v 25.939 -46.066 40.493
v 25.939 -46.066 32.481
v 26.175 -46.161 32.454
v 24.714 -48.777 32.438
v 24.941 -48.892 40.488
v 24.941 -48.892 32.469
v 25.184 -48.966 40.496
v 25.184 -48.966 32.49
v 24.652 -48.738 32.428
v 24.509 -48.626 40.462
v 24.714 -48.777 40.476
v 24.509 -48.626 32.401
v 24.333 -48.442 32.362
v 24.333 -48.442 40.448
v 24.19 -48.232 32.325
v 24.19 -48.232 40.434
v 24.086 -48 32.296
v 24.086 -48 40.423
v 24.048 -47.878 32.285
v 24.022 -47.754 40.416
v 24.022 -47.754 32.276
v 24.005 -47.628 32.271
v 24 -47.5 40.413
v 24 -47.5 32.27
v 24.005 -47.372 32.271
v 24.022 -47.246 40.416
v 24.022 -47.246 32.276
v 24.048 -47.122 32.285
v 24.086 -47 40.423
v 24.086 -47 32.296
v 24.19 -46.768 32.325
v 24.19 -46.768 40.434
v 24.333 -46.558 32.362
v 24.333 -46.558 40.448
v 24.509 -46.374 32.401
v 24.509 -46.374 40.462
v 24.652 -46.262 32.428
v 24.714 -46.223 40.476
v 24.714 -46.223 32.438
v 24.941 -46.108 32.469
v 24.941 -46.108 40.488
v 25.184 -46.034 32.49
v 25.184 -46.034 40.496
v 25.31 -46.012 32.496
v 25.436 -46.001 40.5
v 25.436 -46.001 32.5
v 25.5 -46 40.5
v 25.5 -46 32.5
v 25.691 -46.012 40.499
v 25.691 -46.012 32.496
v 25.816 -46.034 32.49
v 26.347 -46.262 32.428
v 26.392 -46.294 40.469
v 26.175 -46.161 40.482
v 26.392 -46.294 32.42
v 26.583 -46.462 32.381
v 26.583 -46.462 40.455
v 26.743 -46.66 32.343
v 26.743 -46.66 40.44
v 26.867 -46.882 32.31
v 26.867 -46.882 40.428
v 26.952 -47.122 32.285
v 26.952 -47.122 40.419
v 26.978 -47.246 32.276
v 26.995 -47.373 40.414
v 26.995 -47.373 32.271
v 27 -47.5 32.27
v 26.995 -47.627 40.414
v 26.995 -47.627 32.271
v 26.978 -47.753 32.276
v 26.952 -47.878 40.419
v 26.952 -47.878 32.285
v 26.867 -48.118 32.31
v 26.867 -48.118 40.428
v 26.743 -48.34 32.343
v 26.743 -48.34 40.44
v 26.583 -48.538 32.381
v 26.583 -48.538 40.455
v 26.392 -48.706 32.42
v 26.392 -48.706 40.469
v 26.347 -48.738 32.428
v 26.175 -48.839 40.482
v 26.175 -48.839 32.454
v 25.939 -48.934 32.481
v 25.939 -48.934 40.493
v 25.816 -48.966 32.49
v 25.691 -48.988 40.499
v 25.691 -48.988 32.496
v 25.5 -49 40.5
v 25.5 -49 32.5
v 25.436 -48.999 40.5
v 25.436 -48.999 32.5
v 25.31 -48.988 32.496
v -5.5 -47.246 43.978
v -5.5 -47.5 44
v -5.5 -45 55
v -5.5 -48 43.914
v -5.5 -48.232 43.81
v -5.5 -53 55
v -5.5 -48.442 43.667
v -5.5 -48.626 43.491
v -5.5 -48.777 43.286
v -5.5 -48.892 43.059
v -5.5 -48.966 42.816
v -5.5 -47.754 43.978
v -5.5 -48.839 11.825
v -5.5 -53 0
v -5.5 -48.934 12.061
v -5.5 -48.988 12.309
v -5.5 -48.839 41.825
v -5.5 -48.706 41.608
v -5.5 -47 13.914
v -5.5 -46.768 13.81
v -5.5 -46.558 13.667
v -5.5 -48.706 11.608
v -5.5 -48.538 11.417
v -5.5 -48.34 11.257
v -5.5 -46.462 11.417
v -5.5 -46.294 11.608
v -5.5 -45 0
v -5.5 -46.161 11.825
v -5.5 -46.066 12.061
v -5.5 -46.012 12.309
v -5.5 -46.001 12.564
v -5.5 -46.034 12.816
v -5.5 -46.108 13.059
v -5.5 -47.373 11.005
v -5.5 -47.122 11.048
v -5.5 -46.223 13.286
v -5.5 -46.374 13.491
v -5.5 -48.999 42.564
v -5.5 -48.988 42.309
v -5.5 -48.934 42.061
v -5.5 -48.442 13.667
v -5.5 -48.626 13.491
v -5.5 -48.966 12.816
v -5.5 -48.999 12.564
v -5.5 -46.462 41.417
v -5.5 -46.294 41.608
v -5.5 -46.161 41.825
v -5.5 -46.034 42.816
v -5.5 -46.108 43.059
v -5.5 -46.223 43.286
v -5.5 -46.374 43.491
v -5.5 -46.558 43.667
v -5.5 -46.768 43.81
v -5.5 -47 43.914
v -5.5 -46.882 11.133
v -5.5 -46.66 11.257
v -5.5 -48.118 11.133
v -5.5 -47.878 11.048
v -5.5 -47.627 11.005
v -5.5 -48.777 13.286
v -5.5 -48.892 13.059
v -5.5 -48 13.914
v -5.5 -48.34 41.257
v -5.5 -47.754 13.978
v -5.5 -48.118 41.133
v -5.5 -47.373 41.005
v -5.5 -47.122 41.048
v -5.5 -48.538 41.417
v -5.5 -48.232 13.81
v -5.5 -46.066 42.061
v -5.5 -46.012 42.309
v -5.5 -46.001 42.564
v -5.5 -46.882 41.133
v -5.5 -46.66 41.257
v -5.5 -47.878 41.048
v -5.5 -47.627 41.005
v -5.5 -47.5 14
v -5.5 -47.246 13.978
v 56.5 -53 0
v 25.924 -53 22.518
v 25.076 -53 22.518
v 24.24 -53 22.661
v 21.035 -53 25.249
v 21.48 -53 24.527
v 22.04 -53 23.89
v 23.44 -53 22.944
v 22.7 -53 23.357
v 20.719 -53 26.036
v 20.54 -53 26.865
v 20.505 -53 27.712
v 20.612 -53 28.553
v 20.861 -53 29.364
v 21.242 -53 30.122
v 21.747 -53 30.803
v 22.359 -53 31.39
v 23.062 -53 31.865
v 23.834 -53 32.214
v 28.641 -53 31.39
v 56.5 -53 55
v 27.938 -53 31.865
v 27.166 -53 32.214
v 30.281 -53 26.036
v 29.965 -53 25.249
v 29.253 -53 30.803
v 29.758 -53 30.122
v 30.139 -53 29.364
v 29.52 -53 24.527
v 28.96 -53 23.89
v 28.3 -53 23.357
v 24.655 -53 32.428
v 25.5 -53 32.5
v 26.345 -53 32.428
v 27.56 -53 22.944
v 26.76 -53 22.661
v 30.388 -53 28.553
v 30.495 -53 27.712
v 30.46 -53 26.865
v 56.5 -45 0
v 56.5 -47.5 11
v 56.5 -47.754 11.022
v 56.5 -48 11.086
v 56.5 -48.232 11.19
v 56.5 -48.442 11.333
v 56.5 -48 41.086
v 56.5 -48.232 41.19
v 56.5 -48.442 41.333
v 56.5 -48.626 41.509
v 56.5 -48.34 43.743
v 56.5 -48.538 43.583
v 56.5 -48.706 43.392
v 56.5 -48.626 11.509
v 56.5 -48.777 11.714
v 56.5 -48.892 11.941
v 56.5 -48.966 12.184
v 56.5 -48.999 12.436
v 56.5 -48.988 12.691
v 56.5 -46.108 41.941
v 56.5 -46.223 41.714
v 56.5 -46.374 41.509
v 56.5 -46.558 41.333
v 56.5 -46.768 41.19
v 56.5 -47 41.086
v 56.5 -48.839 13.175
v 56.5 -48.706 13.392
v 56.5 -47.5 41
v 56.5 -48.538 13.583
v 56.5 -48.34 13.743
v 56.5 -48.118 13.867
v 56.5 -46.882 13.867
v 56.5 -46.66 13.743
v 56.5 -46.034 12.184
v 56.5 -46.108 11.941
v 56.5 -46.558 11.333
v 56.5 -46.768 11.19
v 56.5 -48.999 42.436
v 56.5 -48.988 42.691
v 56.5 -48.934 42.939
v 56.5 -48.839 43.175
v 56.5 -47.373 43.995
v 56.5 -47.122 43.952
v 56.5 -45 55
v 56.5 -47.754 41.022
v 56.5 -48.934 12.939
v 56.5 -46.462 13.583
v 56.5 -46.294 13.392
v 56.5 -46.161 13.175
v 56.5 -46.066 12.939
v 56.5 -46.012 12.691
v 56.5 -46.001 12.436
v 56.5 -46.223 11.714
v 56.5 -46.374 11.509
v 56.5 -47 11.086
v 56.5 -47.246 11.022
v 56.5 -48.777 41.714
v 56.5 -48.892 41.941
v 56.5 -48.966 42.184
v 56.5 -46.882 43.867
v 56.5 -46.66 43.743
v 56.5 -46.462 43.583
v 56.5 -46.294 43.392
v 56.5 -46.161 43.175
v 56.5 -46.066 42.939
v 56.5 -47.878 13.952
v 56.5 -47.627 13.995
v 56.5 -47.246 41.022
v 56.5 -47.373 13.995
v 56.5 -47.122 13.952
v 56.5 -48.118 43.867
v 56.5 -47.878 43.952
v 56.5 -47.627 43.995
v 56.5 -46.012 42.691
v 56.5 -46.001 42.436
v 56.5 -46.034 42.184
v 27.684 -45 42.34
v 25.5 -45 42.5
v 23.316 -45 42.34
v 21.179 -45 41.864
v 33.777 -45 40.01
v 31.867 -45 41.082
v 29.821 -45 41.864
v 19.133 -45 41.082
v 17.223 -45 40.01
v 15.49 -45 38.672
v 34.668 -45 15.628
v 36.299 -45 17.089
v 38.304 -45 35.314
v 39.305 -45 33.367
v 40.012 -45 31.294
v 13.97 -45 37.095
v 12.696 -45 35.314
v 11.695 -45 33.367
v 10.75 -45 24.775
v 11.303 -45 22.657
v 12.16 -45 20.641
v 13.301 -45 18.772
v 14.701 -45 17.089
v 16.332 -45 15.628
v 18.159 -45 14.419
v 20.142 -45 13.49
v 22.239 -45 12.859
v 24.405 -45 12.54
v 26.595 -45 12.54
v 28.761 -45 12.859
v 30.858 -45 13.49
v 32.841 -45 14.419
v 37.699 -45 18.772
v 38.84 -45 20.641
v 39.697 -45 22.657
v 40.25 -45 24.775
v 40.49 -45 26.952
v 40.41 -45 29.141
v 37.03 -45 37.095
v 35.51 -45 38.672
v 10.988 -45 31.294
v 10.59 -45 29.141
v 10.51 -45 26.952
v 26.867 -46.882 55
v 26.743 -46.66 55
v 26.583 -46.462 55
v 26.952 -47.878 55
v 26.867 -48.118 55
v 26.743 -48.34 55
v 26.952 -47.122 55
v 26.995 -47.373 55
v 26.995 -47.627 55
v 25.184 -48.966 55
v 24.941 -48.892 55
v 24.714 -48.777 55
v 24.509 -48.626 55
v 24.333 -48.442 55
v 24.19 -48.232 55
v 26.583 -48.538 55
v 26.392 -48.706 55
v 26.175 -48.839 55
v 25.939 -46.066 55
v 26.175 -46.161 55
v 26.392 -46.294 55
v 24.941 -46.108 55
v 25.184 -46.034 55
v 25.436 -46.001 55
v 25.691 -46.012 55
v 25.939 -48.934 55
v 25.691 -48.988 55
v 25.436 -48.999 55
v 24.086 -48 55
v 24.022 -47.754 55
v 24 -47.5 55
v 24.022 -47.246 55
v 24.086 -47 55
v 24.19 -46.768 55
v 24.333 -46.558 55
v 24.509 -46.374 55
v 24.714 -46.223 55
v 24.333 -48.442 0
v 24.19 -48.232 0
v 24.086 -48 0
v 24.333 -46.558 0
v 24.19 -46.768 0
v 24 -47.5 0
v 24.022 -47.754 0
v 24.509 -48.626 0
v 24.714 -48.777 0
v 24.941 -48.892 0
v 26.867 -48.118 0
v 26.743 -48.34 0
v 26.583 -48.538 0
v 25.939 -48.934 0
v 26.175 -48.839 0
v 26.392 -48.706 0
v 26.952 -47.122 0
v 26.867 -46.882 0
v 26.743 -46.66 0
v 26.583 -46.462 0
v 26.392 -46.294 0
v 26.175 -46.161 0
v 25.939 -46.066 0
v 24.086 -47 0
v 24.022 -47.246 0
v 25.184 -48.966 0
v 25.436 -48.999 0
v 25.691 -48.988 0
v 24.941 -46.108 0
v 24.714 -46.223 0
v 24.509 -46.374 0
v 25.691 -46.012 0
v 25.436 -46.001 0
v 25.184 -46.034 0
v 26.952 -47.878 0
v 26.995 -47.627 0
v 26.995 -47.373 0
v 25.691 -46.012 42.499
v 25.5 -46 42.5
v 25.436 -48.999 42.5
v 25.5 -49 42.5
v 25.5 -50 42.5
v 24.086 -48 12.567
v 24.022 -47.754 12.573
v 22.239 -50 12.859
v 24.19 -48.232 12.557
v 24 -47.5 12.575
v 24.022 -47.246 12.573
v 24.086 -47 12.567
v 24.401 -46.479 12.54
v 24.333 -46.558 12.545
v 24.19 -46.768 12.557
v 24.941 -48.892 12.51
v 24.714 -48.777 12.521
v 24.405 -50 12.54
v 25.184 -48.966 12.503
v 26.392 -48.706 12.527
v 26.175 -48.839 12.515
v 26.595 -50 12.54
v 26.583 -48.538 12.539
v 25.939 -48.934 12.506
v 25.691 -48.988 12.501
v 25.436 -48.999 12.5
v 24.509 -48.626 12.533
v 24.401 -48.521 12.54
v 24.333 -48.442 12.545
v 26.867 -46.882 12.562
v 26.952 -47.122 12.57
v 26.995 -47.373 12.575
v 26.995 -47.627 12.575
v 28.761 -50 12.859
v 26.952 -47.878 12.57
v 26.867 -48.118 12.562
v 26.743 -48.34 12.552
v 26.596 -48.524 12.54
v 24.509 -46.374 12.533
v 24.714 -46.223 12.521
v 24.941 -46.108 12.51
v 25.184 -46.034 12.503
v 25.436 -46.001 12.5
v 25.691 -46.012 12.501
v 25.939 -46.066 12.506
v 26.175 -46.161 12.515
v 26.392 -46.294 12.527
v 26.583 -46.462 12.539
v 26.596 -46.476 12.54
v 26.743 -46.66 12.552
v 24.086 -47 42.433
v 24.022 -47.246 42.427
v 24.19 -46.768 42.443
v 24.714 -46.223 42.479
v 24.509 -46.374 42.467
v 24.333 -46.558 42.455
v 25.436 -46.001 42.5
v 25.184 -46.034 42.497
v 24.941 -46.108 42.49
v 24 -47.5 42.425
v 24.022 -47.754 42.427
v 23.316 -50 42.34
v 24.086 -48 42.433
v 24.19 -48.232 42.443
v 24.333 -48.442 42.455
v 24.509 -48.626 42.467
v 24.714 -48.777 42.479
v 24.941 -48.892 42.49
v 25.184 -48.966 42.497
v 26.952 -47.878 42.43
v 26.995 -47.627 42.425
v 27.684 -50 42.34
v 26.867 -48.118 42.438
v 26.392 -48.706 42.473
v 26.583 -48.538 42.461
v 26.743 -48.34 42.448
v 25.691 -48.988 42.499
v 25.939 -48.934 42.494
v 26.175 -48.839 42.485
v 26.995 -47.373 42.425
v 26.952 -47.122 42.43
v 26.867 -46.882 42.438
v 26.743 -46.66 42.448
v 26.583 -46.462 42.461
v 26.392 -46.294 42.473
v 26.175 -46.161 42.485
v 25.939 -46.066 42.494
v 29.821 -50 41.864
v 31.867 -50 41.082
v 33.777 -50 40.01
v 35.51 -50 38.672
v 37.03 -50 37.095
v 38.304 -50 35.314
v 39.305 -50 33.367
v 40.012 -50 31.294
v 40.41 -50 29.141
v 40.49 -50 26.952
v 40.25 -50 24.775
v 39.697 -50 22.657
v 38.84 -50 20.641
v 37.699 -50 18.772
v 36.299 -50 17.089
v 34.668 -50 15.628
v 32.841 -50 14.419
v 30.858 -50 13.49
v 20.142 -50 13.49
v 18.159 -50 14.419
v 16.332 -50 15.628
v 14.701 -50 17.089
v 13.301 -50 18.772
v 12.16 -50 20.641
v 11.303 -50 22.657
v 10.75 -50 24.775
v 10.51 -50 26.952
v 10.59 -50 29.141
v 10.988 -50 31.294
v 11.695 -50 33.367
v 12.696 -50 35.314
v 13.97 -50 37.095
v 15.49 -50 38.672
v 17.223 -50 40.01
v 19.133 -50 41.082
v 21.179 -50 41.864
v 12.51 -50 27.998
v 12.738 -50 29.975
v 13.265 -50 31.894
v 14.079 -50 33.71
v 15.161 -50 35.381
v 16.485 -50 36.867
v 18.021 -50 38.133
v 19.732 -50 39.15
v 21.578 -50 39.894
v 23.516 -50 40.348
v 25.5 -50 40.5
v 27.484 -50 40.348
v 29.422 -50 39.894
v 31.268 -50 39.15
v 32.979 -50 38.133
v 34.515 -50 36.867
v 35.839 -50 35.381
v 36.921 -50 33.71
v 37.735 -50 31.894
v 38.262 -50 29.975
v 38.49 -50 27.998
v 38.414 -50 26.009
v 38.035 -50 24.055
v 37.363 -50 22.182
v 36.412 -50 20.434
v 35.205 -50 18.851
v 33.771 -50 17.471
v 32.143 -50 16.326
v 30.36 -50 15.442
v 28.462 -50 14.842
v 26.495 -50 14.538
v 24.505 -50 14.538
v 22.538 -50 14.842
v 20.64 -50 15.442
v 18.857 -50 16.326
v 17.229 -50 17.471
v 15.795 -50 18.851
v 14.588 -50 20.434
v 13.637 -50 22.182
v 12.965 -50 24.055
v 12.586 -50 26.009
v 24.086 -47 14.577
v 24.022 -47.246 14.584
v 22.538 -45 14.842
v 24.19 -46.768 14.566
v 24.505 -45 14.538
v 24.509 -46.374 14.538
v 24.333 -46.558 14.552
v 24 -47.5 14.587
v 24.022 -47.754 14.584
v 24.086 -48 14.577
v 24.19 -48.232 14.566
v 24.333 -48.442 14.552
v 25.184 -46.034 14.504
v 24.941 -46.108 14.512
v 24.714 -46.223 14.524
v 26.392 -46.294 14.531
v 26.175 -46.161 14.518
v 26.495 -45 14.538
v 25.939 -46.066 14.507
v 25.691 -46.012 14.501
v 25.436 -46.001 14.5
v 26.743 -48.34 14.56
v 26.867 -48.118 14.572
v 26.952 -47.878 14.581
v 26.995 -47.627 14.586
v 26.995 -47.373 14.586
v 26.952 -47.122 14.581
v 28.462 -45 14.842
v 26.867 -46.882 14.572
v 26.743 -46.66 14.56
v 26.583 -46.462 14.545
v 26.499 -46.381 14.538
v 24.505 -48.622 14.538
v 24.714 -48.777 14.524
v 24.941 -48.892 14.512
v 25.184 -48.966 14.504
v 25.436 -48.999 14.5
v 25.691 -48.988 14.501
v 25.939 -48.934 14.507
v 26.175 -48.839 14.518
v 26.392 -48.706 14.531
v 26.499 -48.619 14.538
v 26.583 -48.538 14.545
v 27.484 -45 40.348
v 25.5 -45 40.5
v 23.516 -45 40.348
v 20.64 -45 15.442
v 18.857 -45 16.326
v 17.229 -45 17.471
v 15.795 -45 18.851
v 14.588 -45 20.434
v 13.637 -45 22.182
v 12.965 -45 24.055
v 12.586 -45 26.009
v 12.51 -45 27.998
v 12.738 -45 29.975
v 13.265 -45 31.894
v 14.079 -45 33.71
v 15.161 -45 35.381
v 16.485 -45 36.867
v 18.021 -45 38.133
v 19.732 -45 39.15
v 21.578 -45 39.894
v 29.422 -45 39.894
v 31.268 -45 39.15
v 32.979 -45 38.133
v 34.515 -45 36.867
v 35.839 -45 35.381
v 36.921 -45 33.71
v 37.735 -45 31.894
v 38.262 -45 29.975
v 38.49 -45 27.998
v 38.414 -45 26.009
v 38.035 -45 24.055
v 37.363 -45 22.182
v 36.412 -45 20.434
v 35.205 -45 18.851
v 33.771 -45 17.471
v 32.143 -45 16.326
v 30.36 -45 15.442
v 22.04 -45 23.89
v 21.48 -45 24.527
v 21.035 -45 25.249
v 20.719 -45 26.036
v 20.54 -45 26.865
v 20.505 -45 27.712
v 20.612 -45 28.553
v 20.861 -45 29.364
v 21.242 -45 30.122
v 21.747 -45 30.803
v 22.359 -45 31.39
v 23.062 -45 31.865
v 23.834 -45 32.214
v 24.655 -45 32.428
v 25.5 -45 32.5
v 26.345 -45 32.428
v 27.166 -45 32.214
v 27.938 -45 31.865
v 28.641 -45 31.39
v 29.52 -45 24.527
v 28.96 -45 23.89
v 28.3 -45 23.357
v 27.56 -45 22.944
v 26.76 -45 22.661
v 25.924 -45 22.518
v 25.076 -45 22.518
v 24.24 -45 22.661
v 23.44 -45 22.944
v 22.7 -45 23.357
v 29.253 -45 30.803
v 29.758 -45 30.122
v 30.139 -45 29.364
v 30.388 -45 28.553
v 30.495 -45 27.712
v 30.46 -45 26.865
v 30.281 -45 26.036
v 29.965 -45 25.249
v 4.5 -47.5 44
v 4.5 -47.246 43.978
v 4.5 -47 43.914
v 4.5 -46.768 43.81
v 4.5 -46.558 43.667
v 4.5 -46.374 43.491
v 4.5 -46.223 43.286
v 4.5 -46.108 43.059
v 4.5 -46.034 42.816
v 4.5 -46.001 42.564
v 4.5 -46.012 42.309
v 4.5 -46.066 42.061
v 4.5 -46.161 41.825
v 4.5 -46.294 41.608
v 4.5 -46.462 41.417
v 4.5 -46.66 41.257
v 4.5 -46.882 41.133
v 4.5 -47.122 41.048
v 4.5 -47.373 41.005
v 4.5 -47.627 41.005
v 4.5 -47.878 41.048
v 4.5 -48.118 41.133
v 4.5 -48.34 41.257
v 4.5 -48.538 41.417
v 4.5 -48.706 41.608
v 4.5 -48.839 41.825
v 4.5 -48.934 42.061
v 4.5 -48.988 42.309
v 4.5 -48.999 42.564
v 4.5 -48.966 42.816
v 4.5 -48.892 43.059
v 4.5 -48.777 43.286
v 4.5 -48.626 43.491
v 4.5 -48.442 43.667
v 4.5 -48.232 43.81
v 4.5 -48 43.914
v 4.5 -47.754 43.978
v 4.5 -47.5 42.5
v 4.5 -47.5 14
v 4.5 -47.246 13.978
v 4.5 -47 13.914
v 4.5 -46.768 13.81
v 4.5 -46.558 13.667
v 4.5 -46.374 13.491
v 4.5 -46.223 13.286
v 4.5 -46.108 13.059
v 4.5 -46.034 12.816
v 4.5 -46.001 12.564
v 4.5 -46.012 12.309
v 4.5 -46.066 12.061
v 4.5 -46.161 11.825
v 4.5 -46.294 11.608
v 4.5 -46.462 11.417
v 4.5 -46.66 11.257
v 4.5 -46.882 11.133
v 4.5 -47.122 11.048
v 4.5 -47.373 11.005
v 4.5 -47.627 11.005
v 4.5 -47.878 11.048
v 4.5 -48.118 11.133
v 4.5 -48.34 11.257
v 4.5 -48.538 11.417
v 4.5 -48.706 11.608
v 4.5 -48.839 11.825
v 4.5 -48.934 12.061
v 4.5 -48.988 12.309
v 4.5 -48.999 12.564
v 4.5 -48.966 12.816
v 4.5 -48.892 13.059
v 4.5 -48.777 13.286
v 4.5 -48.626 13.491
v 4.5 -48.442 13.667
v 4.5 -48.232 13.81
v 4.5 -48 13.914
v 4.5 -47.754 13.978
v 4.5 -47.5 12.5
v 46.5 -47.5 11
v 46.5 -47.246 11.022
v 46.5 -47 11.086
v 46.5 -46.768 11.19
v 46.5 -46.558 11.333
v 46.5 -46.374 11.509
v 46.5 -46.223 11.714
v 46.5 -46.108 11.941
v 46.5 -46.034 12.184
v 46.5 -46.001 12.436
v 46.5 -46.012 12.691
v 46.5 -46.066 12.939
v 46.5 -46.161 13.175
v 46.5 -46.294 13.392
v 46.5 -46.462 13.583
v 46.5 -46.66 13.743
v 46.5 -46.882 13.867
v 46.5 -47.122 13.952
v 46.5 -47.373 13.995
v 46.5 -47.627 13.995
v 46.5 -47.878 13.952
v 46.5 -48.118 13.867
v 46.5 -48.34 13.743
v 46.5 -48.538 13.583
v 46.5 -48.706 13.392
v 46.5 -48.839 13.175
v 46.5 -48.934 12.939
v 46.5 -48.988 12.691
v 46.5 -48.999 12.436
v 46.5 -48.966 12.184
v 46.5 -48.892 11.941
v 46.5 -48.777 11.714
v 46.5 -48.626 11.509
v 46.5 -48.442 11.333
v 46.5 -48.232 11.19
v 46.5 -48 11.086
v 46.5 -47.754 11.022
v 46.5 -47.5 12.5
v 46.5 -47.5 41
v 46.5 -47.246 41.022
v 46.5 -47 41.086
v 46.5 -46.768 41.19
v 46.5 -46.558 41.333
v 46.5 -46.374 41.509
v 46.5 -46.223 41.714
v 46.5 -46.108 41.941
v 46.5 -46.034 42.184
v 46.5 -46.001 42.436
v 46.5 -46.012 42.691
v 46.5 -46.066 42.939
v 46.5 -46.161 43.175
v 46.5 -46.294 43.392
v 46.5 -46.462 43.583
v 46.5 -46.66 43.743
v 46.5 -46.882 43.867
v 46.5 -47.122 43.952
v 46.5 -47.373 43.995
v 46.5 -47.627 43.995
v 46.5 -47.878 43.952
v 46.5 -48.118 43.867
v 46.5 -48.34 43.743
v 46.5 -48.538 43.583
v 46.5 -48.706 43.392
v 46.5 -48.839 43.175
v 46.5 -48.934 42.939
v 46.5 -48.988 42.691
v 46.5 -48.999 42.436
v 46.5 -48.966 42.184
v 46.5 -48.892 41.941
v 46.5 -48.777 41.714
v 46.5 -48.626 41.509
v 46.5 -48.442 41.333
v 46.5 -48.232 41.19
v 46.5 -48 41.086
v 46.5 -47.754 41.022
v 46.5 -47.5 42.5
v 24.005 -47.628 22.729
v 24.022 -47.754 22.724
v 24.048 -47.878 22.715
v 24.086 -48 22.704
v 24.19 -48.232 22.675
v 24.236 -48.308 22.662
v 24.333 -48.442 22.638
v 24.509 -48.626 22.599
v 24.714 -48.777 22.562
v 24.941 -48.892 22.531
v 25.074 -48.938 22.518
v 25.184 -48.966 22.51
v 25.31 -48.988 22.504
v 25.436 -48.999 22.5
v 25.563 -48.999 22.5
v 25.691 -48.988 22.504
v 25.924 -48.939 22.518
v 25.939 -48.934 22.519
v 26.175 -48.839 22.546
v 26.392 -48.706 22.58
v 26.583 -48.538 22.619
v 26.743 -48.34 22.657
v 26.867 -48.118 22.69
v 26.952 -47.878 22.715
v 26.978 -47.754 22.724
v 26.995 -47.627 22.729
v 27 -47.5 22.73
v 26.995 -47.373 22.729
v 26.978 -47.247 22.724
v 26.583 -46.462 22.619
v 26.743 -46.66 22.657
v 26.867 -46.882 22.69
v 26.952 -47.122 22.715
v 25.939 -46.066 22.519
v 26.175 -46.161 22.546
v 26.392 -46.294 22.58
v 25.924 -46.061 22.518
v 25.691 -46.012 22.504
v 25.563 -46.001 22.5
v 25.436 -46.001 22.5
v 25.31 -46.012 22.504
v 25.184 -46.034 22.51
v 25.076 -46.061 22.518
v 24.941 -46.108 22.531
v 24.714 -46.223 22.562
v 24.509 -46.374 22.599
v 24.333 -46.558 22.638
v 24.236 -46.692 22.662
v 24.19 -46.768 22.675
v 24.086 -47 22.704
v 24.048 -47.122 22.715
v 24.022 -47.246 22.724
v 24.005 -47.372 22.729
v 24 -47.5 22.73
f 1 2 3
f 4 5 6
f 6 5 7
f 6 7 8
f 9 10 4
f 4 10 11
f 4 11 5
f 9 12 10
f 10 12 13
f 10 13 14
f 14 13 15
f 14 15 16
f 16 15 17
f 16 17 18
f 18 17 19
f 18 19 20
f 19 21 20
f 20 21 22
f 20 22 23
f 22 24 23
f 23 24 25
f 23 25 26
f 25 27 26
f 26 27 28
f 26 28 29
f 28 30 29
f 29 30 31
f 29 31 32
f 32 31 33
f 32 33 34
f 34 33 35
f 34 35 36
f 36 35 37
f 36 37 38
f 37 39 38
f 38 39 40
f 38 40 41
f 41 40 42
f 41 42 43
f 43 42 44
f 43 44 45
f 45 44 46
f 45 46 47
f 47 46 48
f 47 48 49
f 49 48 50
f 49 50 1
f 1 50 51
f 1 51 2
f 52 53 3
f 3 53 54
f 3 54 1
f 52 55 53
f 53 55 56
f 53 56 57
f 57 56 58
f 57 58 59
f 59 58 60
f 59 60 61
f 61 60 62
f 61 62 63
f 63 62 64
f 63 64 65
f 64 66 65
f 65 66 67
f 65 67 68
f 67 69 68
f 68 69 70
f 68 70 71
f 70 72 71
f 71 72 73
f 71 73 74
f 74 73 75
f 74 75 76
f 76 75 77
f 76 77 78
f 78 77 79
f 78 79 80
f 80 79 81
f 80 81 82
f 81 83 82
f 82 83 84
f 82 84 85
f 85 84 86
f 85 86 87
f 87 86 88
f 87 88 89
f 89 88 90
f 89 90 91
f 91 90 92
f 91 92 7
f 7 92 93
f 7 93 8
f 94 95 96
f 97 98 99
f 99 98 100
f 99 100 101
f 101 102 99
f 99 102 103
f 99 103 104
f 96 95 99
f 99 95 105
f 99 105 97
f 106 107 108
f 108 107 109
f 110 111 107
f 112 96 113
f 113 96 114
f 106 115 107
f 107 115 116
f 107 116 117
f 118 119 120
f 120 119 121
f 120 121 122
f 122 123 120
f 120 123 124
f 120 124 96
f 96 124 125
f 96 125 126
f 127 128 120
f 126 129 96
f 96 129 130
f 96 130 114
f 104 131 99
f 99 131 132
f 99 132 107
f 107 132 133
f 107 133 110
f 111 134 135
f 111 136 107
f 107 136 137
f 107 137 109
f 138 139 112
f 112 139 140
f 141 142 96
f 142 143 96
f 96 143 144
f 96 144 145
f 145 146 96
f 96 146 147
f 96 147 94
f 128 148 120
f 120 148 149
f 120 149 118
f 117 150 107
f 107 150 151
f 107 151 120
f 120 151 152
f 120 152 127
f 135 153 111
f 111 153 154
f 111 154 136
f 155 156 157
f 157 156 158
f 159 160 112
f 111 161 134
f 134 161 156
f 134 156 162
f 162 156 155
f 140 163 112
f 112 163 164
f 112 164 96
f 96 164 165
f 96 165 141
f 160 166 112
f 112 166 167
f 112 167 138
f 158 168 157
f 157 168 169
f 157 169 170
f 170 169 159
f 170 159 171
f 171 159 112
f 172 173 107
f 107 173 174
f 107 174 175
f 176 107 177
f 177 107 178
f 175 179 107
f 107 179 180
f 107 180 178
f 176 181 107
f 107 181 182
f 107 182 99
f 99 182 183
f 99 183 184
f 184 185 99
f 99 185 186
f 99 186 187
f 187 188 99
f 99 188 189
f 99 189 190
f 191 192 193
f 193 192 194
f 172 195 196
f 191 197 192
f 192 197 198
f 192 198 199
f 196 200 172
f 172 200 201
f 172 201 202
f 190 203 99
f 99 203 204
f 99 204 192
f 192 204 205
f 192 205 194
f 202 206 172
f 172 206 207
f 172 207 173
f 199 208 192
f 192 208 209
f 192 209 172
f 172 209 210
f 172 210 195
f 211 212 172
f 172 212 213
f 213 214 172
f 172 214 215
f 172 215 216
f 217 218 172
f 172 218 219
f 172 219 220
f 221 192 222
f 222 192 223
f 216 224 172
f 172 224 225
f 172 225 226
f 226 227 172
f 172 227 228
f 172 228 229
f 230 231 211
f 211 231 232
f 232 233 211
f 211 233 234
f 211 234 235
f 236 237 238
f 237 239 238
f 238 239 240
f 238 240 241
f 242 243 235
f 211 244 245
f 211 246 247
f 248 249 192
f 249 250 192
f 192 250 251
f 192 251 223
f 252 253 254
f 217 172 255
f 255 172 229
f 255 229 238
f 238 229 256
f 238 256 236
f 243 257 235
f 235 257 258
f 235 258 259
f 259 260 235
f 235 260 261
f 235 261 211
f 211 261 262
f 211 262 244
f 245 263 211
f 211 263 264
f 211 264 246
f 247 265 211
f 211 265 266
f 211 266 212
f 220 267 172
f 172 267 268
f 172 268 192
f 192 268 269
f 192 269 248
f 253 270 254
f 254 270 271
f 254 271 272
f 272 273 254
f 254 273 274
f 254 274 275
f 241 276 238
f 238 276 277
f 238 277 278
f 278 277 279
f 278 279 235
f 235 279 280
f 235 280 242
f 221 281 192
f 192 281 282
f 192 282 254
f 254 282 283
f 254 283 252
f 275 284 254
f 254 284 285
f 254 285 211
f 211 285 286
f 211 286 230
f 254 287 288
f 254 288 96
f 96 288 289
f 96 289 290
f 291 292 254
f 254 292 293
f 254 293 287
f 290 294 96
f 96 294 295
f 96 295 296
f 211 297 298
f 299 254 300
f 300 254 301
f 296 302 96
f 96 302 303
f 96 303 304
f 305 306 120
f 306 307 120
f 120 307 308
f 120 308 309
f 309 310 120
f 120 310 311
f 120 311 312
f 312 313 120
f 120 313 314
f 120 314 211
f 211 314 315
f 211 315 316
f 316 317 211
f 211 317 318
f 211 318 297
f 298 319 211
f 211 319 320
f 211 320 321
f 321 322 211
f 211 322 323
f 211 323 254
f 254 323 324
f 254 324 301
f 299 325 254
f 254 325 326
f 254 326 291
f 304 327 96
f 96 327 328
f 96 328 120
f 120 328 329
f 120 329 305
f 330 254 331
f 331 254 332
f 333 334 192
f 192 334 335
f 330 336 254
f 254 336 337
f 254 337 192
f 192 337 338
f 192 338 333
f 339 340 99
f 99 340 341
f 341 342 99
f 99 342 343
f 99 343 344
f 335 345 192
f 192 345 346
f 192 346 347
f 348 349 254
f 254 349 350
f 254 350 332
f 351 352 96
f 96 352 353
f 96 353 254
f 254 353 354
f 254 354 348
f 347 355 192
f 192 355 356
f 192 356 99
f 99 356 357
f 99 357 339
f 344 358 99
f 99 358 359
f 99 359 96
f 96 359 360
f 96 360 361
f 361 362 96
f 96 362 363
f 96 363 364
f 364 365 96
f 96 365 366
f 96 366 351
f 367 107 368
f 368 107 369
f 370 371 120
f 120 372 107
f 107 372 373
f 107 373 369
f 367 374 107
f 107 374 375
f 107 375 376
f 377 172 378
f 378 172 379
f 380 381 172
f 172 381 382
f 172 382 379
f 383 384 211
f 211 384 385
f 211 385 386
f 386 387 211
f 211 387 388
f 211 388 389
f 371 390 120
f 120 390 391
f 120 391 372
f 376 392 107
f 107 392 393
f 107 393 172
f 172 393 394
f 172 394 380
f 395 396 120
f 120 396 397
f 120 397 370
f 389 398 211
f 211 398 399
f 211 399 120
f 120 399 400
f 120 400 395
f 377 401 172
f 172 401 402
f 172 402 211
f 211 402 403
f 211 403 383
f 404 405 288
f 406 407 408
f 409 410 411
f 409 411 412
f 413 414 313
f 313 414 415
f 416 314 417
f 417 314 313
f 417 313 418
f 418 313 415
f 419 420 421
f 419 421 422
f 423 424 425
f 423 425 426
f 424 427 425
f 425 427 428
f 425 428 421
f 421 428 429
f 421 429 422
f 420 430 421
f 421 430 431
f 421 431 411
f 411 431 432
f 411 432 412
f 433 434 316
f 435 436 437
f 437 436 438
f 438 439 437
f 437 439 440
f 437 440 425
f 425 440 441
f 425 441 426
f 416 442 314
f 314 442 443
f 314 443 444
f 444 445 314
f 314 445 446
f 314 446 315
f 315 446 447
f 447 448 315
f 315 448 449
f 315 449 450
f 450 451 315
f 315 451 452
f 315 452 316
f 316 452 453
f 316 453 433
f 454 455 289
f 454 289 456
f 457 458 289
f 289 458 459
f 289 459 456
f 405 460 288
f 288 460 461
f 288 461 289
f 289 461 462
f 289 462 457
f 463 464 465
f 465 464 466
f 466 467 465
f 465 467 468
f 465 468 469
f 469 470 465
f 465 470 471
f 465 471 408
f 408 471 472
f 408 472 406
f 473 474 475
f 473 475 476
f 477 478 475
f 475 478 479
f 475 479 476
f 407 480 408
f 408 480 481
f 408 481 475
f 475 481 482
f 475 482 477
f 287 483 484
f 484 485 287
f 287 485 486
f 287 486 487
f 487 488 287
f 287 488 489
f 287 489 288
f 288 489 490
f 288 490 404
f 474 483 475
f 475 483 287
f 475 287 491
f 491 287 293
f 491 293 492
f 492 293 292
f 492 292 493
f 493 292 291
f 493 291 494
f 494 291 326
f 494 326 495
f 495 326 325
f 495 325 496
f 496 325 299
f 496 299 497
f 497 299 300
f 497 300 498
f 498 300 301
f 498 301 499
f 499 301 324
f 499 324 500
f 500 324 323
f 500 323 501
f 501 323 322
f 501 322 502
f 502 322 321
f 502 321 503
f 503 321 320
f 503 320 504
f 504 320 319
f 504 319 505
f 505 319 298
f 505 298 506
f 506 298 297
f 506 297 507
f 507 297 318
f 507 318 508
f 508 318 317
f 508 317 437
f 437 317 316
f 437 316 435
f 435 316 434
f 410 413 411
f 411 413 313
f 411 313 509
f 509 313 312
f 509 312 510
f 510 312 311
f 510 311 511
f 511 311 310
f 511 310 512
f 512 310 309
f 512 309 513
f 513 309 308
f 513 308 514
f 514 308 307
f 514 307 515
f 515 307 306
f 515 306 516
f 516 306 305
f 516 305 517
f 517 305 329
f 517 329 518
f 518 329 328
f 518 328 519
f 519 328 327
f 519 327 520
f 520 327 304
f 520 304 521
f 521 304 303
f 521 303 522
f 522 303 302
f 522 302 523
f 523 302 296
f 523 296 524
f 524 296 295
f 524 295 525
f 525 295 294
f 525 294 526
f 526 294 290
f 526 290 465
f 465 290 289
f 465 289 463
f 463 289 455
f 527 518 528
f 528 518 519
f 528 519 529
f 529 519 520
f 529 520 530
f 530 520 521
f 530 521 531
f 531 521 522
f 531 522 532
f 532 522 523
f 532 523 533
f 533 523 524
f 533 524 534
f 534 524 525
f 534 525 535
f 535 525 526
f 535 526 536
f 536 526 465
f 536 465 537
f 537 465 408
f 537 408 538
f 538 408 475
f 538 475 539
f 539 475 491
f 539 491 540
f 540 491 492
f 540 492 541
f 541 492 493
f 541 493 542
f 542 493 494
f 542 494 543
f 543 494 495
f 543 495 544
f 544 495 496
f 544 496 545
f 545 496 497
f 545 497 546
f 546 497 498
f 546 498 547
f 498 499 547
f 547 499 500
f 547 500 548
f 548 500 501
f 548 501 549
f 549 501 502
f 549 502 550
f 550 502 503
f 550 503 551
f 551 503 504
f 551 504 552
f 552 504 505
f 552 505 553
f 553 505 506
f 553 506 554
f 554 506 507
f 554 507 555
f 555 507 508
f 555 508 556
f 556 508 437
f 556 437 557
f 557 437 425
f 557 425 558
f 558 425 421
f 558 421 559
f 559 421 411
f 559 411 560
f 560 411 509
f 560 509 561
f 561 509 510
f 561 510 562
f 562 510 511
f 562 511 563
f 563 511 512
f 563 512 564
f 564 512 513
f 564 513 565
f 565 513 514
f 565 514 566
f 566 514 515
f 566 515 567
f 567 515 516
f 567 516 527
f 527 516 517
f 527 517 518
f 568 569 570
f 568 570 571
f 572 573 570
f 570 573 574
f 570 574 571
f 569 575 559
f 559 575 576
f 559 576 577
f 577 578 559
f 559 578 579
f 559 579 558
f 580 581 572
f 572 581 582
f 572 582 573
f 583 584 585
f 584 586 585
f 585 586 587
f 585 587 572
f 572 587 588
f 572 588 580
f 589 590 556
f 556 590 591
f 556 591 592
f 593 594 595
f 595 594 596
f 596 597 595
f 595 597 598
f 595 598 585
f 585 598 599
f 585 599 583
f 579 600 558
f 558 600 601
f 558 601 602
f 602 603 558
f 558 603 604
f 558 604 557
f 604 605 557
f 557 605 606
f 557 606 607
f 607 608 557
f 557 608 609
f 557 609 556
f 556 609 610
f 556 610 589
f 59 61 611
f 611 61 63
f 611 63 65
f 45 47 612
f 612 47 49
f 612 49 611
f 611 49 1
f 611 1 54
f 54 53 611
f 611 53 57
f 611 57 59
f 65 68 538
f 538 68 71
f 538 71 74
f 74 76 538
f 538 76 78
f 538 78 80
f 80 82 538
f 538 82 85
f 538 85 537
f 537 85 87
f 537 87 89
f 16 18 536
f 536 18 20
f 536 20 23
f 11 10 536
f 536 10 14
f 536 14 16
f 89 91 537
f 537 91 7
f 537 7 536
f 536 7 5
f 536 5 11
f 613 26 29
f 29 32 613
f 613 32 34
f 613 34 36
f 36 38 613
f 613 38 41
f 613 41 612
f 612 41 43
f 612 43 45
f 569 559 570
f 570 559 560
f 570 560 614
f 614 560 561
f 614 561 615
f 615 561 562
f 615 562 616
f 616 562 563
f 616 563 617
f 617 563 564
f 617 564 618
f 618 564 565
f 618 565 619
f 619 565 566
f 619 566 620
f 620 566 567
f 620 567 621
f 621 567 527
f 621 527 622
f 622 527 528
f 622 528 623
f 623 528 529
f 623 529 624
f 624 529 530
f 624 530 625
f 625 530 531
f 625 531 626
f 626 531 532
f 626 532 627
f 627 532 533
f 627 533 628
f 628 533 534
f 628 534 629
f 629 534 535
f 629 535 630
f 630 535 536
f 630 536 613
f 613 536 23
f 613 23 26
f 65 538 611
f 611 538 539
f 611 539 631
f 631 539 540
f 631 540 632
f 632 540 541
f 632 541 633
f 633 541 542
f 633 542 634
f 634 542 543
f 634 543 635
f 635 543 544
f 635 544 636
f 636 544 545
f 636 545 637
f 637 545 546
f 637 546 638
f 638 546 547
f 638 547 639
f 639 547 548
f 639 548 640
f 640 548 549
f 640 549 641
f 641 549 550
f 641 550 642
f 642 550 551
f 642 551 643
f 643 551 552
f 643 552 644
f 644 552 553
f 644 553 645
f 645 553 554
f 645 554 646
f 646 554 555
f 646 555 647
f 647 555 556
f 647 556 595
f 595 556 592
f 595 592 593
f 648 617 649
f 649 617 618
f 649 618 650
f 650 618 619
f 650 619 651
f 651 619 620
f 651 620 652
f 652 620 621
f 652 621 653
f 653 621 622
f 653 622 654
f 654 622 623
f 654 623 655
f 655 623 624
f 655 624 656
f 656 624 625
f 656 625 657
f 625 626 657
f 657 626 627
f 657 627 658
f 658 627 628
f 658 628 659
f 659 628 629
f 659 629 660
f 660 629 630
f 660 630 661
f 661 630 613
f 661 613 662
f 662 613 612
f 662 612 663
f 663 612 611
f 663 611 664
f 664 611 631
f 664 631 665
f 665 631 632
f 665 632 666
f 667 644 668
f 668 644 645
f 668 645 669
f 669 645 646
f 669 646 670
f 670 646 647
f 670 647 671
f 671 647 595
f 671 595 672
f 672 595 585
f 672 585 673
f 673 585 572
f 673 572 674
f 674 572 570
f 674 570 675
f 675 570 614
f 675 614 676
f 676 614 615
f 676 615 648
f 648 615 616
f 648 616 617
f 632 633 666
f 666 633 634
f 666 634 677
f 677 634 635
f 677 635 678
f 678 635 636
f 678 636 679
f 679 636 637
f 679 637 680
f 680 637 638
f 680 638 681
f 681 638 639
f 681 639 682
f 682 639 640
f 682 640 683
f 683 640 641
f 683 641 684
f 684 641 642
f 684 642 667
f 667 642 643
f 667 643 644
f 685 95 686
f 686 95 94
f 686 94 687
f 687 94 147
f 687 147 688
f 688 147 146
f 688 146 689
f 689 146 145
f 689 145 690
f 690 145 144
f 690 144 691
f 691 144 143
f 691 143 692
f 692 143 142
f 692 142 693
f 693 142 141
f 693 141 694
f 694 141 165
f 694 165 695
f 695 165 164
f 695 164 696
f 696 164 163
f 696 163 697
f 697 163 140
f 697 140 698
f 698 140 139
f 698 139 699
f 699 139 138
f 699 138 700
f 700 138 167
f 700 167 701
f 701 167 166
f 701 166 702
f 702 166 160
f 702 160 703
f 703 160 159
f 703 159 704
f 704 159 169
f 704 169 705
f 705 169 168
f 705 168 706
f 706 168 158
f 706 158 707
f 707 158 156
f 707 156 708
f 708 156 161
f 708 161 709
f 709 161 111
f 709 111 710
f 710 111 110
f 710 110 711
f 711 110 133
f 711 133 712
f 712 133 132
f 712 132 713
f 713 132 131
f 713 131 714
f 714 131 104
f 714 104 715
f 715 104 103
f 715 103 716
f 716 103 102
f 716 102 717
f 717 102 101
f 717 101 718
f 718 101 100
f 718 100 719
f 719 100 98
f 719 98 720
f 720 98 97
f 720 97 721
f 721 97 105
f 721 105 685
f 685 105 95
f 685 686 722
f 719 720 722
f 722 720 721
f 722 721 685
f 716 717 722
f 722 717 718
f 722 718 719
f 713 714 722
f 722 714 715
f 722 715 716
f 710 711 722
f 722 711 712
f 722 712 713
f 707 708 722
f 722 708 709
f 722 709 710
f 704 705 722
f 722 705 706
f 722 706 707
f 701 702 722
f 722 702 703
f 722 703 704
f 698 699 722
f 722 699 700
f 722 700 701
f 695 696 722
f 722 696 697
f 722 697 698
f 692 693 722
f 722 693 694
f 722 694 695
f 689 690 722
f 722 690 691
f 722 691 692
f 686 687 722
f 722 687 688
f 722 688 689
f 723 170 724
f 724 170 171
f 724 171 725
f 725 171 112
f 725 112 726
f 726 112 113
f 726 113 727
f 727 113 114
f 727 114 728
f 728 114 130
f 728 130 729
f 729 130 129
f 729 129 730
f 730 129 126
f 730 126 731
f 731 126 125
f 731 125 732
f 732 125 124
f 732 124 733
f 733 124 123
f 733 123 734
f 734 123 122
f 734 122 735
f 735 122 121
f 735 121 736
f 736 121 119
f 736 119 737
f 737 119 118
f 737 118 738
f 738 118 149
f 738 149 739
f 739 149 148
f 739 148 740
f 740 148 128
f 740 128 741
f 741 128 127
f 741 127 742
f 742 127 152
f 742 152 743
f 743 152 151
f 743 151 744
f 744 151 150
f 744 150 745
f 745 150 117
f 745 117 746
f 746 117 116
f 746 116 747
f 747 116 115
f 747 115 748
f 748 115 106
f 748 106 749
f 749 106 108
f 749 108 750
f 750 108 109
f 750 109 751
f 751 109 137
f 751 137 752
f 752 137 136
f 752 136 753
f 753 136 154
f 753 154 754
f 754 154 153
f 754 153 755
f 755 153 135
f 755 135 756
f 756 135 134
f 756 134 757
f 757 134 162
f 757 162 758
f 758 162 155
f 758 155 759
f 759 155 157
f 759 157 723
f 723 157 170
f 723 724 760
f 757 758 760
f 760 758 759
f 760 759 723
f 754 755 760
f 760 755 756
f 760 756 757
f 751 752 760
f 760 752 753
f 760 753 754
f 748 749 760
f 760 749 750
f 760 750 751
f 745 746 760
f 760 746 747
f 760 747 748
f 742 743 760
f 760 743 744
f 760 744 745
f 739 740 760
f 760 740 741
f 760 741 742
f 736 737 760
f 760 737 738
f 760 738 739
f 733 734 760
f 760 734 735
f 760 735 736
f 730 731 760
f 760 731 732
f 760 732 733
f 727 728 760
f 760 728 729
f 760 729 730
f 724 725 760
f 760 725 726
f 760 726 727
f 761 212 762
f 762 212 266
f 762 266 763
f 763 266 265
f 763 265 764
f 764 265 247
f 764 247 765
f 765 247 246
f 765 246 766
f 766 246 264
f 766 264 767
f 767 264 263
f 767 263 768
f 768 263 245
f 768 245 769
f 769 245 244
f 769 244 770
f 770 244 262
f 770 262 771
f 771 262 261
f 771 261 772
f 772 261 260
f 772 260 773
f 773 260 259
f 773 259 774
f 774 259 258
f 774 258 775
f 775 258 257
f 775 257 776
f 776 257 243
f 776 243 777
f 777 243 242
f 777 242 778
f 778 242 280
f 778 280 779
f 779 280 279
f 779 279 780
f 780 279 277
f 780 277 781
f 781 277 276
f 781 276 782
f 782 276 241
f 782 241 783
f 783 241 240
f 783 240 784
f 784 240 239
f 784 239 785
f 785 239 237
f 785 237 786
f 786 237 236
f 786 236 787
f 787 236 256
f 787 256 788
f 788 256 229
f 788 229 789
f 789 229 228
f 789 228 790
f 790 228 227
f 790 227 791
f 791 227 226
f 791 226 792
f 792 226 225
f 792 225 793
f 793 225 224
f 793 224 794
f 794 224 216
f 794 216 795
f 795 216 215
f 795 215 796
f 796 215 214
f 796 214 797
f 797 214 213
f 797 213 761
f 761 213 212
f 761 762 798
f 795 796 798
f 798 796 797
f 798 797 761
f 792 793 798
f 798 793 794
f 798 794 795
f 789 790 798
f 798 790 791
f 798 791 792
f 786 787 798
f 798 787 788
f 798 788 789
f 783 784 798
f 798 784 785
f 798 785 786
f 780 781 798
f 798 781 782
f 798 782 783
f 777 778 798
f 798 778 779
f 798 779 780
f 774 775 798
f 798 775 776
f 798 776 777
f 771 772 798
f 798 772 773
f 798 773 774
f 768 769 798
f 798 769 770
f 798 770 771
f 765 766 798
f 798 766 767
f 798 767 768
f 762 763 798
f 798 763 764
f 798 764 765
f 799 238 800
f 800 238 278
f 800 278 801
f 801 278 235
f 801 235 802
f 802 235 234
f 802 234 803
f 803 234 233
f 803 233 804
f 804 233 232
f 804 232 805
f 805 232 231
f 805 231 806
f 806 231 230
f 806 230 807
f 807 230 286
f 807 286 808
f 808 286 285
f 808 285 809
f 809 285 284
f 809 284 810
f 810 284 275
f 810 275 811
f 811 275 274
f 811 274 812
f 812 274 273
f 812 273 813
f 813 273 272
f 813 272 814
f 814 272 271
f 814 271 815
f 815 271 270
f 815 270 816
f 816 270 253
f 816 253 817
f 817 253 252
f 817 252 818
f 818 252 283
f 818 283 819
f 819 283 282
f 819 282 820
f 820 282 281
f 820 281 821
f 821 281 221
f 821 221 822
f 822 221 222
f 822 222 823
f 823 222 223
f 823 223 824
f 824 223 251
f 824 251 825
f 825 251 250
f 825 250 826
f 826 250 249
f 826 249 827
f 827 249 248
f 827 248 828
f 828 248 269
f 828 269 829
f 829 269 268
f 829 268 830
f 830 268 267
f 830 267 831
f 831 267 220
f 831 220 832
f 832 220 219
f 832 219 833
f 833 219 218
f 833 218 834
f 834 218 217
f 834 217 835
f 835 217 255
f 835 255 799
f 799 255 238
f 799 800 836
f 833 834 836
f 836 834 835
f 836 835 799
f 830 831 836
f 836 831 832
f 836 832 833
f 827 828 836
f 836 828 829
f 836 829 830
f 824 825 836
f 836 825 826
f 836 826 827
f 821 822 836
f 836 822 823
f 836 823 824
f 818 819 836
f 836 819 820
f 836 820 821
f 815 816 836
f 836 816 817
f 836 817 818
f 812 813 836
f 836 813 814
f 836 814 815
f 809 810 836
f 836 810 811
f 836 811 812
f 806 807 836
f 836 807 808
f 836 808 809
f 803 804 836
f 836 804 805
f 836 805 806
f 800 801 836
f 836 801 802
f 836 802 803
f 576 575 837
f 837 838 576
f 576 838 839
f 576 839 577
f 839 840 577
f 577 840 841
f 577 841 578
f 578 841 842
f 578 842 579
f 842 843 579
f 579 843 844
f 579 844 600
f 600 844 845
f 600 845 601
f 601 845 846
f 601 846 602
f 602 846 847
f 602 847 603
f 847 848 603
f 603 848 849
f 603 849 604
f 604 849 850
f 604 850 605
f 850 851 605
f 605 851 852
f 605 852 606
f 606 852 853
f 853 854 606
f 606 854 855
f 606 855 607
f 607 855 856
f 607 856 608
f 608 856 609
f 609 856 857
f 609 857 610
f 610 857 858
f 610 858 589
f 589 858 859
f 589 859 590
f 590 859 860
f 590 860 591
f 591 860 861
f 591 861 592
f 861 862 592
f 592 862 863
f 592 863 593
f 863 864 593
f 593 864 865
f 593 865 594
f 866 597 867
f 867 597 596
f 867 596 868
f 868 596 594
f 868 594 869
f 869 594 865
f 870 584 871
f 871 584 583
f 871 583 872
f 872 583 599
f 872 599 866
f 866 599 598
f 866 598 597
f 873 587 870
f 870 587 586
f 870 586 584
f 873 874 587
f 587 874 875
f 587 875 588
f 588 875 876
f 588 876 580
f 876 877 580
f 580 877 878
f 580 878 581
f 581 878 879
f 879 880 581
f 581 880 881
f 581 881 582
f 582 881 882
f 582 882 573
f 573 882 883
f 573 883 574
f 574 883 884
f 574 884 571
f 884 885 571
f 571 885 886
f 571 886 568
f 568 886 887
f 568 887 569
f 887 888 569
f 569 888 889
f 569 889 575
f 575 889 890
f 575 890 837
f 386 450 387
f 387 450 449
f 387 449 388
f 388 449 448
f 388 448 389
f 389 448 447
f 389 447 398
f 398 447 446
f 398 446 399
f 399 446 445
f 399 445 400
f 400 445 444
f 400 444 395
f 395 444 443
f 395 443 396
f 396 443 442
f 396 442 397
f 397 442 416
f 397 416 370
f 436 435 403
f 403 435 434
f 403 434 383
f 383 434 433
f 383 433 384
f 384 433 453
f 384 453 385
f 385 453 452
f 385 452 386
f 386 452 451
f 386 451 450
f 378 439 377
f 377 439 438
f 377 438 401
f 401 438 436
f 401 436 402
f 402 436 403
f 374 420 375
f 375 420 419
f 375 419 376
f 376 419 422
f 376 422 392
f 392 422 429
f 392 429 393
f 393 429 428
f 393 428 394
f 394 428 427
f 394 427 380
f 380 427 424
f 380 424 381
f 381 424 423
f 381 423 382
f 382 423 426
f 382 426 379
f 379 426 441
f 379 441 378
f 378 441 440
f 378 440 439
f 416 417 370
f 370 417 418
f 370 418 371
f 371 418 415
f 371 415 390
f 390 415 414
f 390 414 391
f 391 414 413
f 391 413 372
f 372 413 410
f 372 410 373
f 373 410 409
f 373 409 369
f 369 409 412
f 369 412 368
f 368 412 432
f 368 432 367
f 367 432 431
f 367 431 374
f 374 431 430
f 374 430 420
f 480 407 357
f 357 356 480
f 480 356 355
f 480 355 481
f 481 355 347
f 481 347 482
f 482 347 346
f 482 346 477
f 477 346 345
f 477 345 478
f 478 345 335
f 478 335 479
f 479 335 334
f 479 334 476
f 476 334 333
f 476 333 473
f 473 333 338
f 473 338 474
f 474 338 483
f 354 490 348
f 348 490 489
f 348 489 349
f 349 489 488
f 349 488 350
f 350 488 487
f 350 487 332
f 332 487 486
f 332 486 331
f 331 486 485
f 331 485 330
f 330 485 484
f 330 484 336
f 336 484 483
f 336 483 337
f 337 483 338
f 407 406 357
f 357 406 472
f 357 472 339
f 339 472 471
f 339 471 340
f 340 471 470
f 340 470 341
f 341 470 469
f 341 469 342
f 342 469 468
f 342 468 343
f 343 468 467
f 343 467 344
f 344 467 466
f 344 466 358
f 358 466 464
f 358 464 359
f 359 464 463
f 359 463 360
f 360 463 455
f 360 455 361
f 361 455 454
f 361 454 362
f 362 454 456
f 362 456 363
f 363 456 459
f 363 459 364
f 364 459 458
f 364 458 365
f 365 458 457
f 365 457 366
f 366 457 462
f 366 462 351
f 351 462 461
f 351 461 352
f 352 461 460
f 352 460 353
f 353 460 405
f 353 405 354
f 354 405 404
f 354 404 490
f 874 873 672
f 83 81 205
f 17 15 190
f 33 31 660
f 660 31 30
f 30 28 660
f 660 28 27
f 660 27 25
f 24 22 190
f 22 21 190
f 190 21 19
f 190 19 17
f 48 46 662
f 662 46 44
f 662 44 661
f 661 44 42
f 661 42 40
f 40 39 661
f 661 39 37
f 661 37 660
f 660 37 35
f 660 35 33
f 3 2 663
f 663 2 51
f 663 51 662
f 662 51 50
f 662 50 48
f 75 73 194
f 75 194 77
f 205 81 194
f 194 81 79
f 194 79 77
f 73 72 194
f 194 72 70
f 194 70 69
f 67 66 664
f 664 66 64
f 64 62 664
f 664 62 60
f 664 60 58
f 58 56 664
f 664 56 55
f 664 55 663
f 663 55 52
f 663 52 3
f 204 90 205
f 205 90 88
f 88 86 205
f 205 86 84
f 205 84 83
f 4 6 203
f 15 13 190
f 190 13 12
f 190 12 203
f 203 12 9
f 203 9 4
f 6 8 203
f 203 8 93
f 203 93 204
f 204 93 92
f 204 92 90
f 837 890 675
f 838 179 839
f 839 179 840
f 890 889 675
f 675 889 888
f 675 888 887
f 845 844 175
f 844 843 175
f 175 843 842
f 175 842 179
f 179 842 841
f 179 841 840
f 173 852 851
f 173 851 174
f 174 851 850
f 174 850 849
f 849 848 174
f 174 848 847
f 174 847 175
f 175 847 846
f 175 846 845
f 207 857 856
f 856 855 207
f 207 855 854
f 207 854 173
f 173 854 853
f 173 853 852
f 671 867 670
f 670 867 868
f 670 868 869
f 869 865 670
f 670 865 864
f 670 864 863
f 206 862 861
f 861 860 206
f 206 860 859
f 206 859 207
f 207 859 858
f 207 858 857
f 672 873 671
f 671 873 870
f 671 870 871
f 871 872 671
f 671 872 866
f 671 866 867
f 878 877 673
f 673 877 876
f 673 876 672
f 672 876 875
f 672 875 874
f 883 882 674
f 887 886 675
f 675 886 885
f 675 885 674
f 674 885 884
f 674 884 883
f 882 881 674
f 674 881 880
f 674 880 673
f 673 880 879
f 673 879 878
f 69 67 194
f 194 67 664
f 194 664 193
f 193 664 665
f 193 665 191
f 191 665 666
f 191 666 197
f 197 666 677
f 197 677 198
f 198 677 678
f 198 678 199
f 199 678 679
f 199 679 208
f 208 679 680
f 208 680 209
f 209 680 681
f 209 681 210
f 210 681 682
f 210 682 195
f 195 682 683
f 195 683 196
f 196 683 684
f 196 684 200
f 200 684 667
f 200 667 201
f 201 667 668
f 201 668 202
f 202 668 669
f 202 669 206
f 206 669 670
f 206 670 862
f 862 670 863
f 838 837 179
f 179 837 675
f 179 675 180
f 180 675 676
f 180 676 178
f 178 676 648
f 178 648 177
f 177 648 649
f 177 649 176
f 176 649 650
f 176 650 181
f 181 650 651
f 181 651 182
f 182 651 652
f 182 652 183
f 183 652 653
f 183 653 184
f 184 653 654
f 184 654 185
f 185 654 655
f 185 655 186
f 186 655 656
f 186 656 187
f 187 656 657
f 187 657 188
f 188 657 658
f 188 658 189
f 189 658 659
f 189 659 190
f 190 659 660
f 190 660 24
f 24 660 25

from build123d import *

# Parameters (mm, degrees)
ESQUISSE1_W             = 62
ESQUISSE1_H             = 8
BOSS_EXTRU_1_DEPTH      = 55
ESQUISSE2_R             = 15
ESQUISSE2_R_2           = 13
ENL_V_MAT_EXTRU_1_DEPTH = 5
ESQUISSE3_R             = 1.5
ENL_V_MAT_EXTRU_2_DEPTH = 10
ESQUISSE4_R             = 1.5
ENL_V_MAT_EXTRU_3_DEPTH = 10
ESQUISSE5_R             = 1.5
ENL_V_MAT_EXTRU_4_DEPTH = 56
ESQUISSE6_R             = 5
ENL_V_MAT_EXTRU_5_DEPTH = 9


with BuildPart() as part:
    # Esquisse1 → Boss.-Extru.1 (new body)
    with BuildSketch(Plane.XY):
        with Locations((25.5, -49)):
            Rectangle(ESQUISSE1_W, ESQUISSE1_H)
    extrude(amount=BOSS_EXTRU_1_DEPTH)

    # Esquisse2 → Enlèv. mat.-Extru.1 (cut)
    with BuildSketch(Plane(origin=(0, -45, 0), x_dir=(-1, 0, 0), z_dir=(0, 1, 0))):
        with Locations((-25.5, 27.5)):
            Circle(ESQUISSE2_R)
        with Locations((-25.5, 27.5)):
            Circle(ESQUISSE2_R_2, mode=Mode.SUBTRACT)
    extrude(amount=-ENL_V_MAT_EXTRU_1_DEPTH, mode=Mode.SUBTRACT)

    # Esquisse3 → Enlèv. mat.-Extru.2 (cut)
    with BuildSketch(Plane.ZY.offset(5.5)):
        with Locations((12.5, -47.5)):
            Circle(ESQUISSE3_R)
        with Locations((42.5, -47.5)):
            Circle(ESQUISSE3_R)
    extrude(amount=-ENL_V_MAT_EXTRU_2_DEPTH, mode=Mode.SUBTRACT)

    # Esquisse4 → Enlèv. mat.-Extru.3 (cut)
    with BuildSketch(Plane(origin=(56.5, 0, 0), x_dir=(0, 0, -1), z_dir=(1, 0, 0))):
        with Locations((-42.5, -47.5)):
            Circle(ESQUISSE4_R)
        with Locations((-12.5, -47.5)):
            Circle(ESQUISSE4_R)
    extrude(amount=-ENL_V_MAT_EXTRU_3_DEPTH, mode=Mode.SUBTRACT)

    # Esquisse5 → Enlèv. mat.-Extru.4 (cut, through all)
    with BuildSketch(Plane(origin=(0, 0, 0), x_dir=(-1, 0, 0), z_dir=(0, 0, -1))):
        with Locations((-25.5, -47.5)):
            Circle(ESQUISSE5_R)
    extrude(amount=-ENL_V_MAT_EXTRU_4_DEPTH, mode=Mode.SUBTRACT)

    # Esquisse6 → Enlèv. mat.-Extru.5 (cut, through all)
    with BuildSketch(Plane(origin=(0, -45, 0), x_dir=(1, 0, 0), z_dir=(0, 1, 0))):
        with Locations((25.5, -27.5)):
            Circle(ESQUISSE6_R)
    extrude(amount=-ENL_V_MAT_EXTRU_5_DEPTH, mode=Mode.SUBTRACT)


solid = part.part
